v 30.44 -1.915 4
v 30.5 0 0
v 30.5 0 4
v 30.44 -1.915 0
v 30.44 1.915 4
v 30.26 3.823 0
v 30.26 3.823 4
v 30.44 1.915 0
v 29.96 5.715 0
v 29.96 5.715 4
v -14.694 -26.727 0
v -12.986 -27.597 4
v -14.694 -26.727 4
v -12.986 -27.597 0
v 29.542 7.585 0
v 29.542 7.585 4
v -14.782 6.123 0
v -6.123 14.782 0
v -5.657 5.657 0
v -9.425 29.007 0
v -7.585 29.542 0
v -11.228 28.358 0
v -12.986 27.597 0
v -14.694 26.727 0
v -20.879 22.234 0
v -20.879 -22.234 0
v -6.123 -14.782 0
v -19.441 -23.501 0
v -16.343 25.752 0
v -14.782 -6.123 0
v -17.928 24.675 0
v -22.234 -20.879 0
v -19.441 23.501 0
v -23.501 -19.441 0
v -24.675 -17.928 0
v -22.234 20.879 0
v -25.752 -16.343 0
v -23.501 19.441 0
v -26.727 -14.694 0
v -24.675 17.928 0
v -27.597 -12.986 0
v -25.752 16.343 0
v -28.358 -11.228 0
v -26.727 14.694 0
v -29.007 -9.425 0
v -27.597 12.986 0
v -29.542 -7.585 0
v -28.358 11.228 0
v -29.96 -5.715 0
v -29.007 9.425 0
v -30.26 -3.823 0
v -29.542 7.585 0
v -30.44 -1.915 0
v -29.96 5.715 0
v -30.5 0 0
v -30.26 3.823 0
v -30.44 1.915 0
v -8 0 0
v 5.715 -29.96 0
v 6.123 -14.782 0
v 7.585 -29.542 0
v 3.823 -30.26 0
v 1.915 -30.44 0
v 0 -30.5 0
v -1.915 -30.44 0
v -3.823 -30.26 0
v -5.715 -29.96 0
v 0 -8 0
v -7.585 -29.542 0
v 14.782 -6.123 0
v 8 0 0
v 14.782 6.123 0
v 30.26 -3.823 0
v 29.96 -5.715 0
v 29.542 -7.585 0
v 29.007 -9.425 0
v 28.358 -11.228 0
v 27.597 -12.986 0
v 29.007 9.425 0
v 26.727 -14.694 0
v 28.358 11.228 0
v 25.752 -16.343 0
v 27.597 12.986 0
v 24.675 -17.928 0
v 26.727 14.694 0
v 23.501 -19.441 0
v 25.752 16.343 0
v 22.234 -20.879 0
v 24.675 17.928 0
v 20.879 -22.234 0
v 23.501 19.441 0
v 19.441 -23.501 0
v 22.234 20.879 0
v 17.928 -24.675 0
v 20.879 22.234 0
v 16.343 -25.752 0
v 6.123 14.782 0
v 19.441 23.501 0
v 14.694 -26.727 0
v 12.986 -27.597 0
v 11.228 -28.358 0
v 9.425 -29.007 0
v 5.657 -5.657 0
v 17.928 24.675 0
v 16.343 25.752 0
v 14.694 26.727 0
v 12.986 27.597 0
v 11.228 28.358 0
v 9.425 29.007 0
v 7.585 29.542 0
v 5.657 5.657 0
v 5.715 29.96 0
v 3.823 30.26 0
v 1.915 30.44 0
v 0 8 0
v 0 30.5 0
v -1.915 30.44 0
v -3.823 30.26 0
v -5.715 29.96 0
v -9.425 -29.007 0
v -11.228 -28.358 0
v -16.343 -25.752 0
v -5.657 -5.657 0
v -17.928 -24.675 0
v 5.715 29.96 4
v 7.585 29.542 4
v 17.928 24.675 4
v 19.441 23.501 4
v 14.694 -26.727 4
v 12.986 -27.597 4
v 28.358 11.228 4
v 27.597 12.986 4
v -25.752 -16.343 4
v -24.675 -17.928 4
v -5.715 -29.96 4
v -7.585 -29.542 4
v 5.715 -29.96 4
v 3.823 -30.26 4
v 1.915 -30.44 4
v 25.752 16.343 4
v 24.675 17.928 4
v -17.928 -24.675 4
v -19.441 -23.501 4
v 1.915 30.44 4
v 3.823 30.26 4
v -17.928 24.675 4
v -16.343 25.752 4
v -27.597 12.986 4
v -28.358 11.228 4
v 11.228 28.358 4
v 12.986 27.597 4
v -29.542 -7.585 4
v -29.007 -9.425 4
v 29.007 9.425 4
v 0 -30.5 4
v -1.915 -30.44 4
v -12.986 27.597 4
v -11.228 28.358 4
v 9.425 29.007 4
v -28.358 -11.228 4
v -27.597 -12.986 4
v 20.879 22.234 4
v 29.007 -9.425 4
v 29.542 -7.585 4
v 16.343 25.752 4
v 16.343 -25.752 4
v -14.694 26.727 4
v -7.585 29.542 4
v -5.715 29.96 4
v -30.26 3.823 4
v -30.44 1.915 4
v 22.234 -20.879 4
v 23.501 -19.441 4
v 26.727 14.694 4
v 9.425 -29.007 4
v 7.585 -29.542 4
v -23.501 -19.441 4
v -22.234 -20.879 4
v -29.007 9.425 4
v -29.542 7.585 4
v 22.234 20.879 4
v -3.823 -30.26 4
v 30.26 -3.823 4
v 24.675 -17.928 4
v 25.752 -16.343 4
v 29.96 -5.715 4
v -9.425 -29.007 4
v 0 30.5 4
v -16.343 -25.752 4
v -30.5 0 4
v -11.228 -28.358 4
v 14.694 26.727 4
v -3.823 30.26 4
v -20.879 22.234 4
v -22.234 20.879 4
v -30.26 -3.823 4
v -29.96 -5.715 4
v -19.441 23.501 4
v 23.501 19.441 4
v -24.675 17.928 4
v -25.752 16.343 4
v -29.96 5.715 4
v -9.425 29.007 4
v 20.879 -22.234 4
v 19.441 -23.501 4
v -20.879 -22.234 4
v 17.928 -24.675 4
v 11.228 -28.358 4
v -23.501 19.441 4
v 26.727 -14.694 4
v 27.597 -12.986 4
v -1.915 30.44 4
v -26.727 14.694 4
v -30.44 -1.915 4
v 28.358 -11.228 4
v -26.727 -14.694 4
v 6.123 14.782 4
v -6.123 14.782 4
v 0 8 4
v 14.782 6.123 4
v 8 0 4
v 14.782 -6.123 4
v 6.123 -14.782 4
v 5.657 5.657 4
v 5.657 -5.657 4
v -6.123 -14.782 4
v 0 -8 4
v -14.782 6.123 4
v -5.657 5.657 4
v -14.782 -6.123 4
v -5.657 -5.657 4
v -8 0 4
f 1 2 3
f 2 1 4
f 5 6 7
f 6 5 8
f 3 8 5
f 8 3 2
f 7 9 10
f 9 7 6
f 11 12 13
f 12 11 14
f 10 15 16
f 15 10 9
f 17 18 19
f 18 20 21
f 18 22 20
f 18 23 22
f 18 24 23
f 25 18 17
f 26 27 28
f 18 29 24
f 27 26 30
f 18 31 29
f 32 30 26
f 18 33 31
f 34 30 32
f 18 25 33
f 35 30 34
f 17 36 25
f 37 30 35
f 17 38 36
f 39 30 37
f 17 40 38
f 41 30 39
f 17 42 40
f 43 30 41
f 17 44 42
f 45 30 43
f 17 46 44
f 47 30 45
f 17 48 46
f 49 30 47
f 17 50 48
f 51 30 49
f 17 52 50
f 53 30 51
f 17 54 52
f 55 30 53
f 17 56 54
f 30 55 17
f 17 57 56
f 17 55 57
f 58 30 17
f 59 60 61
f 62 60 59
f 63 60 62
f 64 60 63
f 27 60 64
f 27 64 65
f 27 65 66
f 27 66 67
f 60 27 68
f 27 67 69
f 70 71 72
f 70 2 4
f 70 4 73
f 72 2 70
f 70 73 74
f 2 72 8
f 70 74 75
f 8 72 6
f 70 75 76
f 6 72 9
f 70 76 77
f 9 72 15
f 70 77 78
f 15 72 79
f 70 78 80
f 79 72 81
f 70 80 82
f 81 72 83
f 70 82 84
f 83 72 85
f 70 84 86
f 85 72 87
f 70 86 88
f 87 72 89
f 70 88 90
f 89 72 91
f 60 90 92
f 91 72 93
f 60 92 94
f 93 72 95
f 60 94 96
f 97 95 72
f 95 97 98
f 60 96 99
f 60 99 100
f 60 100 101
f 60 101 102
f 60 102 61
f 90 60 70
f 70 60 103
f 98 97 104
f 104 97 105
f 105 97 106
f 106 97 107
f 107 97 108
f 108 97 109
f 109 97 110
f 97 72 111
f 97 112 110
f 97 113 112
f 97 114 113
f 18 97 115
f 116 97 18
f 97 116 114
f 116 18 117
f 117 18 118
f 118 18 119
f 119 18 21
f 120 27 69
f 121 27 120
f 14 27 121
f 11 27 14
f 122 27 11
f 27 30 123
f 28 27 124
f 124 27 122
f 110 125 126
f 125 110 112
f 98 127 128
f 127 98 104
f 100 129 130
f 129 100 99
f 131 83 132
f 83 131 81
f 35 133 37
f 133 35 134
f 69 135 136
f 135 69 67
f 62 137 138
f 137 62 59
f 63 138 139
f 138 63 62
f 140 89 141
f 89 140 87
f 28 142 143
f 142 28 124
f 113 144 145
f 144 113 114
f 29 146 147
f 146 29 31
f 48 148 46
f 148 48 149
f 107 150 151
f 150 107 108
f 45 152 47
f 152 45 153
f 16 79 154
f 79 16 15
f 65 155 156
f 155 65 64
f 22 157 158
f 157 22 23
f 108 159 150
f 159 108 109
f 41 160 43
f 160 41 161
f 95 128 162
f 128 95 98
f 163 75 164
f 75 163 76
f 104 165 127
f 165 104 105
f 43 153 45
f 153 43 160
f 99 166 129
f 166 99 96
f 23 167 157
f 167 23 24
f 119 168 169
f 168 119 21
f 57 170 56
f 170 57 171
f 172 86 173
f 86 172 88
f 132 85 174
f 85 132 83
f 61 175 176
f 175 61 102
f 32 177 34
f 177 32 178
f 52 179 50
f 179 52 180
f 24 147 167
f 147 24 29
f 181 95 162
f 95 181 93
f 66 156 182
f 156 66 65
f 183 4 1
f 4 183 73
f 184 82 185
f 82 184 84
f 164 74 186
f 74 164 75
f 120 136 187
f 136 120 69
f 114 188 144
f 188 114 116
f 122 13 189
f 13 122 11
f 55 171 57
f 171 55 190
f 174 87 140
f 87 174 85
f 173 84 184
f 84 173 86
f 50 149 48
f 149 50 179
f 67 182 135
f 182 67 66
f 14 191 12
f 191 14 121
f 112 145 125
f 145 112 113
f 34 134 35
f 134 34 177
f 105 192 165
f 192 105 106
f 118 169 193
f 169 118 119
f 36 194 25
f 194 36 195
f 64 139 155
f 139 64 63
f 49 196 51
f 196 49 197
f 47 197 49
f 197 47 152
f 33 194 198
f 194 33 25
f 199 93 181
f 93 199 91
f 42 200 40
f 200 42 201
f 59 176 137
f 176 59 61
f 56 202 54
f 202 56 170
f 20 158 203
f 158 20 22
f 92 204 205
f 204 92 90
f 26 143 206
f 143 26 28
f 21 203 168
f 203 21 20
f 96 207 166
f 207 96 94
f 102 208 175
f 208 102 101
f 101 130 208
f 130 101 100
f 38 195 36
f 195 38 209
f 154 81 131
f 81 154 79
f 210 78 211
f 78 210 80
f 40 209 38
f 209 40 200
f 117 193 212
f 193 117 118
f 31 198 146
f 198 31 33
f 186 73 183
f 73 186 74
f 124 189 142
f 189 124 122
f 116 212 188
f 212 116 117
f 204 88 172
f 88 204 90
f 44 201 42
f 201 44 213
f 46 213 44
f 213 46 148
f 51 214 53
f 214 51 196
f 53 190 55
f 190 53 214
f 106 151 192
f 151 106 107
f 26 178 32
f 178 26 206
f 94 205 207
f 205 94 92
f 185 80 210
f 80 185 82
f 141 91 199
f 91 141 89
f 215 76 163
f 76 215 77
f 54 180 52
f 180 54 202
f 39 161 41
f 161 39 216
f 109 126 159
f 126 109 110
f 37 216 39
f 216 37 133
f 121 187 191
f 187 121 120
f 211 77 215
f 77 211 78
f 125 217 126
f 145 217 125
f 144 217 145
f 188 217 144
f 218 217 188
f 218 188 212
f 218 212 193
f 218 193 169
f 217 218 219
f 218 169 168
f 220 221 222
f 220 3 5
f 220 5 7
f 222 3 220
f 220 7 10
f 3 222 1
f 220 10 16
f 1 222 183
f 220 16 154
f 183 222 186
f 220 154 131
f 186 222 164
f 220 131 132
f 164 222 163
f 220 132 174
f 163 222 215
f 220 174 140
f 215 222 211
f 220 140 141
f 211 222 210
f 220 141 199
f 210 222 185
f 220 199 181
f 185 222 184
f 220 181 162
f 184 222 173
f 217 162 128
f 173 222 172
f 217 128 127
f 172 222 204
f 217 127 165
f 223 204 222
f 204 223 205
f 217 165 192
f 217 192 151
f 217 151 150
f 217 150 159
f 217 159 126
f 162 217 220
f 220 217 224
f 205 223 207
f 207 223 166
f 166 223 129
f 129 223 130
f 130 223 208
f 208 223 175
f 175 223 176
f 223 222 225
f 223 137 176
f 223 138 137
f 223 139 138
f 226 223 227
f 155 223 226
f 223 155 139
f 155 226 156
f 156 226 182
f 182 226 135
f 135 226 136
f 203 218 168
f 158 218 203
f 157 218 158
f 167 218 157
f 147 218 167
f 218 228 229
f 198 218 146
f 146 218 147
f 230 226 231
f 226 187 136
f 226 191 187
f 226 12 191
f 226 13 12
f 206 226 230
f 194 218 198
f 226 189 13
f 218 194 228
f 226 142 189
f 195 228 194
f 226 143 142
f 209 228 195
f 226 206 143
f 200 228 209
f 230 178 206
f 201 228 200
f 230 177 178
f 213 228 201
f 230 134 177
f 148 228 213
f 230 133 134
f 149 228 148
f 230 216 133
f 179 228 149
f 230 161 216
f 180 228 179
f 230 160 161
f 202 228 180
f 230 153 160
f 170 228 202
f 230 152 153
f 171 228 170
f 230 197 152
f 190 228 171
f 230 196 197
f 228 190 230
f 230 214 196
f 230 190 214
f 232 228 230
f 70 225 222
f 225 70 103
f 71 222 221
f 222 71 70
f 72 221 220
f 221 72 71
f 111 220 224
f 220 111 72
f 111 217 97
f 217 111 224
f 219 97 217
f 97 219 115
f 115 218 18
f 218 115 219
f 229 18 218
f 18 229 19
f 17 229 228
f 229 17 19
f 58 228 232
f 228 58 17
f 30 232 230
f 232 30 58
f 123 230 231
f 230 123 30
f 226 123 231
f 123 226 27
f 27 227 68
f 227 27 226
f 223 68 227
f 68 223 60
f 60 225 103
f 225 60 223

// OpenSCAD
$fn=100;

points=8;
innerR=8;
outerR=16;
fittingD=61;
fittingH=4;

module Star(p=5, r1=6, r2=12) {
    s = [for(i=[0:p*2]) [(i % 2 == 0 ? r1 : r2)*cos(180*i/p), (i % 2 == 0 ? r1 : r2)*sin(180*i/p)]];
    polygon(s);
}

difference() {
    cylinder(h=fittingH,d=fittingD);
	translate([0,0,-.1]) linear_extrude(fittingH+.2) Star(points, innerR, outerR);
}
